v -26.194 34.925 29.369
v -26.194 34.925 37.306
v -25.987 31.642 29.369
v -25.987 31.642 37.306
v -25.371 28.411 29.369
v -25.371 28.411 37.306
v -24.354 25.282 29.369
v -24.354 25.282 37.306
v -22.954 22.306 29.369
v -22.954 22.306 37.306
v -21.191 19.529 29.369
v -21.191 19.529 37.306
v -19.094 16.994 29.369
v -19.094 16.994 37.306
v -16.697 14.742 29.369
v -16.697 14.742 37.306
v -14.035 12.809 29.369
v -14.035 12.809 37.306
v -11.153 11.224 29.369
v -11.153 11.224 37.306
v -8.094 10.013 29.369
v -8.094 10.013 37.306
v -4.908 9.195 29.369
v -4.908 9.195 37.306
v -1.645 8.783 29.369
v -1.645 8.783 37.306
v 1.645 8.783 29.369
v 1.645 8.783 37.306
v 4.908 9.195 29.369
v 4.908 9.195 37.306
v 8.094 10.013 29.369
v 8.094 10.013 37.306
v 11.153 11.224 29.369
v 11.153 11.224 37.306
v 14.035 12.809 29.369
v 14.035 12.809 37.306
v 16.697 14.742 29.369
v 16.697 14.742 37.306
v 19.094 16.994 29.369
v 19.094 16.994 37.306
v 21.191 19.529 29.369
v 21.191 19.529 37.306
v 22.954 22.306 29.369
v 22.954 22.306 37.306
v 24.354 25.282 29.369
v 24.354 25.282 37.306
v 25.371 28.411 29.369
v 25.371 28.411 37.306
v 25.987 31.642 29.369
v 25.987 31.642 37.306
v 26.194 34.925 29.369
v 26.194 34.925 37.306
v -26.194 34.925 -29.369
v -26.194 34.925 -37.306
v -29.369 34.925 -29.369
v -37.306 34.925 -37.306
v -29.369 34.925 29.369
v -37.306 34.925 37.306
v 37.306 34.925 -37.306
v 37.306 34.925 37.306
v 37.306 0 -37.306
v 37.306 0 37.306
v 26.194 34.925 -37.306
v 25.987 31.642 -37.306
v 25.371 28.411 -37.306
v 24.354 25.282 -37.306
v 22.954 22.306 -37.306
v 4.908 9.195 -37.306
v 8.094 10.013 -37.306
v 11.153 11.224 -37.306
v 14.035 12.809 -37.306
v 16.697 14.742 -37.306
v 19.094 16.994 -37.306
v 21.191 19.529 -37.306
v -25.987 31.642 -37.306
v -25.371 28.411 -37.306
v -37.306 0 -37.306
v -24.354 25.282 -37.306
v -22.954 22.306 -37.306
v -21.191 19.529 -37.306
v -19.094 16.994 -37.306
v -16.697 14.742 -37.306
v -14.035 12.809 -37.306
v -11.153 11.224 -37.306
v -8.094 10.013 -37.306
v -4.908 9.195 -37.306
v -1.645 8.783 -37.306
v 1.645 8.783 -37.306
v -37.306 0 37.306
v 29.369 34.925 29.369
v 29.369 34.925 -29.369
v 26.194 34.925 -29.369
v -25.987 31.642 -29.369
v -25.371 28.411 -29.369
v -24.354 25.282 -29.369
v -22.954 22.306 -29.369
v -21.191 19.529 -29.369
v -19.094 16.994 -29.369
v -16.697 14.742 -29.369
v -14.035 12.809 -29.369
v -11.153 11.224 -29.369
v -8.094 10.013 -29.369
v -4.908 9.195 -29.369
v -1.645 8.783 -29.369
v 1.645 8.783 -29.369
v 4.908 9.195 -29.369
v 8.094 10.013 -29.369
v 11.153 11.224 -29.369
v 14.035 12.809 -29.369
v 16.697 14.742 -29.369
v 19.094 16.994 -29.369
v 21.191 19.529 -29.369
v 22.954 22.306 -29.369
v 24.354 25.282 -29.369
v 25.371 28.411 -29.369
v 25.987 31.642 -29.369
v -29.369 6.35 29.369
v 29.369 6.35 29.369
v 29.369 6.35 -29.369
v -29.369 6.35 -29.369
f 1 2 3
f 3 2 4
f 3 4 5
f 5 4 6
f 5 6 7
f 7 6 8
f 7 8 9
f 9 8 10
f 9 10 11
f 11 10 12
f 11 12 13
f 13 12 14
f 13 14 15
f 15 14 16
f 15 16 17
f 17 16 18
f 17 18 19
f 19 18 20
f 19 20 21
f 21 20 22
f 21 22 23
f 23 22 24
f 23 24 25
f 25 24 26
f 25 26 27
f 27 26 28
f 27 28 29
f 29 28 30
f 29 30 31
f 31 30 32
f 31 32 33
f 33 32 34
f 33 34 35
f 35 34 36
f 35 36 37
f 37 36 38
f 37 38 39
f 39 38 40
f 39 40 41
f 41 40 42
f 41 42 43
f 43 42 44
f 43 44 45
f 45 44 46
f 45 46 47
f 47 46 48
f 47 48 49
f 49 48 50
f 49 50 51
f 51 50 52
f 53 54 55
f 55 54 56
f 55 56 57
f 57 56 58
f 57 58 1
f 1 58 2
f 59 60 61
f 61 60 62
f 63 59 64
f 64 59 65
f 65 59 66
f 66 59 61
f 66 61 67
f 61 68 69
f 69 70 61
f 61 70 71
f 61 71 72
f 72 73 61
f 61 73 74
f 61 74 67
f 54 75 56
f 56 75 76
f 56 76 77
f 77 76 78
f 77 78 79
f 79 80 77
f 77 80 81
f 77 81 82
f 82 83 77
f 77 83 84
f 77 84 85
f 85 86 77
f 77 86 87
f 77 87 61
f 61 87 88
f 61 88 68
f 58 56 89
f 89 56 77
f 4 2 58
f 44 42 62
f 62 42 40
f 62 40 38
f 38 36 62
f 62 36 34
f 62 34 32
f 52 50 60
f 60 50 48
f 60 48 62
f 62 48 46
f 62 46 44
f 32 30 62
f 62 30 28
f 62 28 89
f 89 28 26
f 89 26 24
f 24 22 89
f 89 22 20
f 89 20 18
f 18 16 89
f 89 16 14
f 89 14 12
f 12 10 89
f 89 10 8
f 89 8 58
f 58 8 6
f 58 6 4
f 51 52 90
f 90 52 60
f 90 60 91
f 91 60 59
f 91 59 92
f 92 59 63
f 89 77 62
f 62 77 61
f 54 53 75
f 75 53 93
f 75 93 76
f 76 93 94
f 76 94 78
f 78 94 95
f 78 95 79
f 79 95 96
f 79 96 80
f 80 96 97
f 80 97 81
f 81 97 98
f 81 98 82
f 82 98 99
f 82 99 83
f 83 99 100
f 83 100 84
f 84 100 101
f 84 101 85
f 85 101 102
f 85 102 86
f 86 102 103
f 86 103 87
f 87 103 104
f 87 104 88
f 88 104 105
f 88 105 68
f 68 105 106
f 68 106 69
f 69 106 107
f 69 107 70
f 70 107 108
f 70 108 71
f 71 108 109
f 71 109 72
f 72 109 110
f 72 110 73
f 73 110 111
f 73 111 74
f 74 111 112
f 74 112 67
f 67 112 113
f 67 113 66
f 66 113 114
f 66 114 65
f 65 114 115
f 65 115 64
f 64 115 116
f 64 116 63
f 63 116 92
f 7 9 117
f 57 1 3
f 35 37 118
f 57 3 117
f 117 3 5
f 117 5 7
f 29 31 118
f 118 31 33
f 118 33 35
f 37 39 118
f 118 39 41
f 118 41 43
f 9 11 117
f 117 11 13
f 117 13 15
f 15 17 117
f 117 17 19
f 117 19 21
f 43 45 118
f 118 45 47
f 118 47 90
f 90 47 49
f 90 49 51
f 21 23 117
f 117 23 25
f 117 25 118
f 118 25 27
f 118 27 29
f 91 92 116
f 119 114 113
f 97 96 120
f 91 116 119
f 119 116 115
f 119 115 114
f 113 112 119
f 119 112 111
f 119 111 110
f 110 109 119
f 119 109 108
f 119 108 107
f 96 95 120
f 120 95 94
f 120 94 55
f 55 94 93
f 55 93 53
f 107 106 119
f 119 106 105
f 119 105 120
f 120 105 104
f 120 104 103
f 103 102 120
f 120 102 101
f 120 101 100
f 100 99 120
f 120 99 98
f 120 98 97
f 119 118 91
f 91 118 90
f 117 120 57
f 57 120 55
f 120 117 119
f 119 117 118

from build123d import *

# Parameters (mm, degrees)
SKETCH1_W           = 74.6125
SKETCH1_H           = 74.6125
BOSS_EXTRUDE1_DEPTH = 34.925
SKETCH2_R           = 26.19375
CUT_EXTRUDE1_DEPTH  = 91.435264528
SKETCH3_W           = 58.7375
SKETCH3_H           = 58.7375
CUT_EXTRUDE2_DEPTH  = 28.575


with BuildPart() as part:
    # Sketch1 → Boss-Extrude1 (new body)
    with BuildSketch(Plane(origin=(0, 0, 0), x_dir=(1, 0, 0), z_dir=(0, 1, 0))):
        Rectangle(SKETCH1_W, SKETCH1_H)
    extrude(amount=BOSS_EXTRUDE1_DEPTH)

    # Sketch2 → Cut-Extrude1 (cut, through all)
    with BuildSketch(Plane.XY.offset(37.30625)):
        with Locations((0, 34.925)):
            Circle(SKETCH2_R)
    extrude(amount=-CUT_EXTRUDE1_DEPTH, mode=Mode.SUBTRACT)

    # Sketch3 → Cut-Extrude2 (cut)
    with BuildSketch(Plane(origin=(0, 34.925, 0), x_dir=(1, 0, 0), z_dir=(0, 1, 0))):
        Rectangle(SKETCH3_W, SKETCH3_H)
    extrude(amount=-CUT_EXTRUDE2_DEPTH, mode=Mode.SUBTRACT)


solid = part.part
